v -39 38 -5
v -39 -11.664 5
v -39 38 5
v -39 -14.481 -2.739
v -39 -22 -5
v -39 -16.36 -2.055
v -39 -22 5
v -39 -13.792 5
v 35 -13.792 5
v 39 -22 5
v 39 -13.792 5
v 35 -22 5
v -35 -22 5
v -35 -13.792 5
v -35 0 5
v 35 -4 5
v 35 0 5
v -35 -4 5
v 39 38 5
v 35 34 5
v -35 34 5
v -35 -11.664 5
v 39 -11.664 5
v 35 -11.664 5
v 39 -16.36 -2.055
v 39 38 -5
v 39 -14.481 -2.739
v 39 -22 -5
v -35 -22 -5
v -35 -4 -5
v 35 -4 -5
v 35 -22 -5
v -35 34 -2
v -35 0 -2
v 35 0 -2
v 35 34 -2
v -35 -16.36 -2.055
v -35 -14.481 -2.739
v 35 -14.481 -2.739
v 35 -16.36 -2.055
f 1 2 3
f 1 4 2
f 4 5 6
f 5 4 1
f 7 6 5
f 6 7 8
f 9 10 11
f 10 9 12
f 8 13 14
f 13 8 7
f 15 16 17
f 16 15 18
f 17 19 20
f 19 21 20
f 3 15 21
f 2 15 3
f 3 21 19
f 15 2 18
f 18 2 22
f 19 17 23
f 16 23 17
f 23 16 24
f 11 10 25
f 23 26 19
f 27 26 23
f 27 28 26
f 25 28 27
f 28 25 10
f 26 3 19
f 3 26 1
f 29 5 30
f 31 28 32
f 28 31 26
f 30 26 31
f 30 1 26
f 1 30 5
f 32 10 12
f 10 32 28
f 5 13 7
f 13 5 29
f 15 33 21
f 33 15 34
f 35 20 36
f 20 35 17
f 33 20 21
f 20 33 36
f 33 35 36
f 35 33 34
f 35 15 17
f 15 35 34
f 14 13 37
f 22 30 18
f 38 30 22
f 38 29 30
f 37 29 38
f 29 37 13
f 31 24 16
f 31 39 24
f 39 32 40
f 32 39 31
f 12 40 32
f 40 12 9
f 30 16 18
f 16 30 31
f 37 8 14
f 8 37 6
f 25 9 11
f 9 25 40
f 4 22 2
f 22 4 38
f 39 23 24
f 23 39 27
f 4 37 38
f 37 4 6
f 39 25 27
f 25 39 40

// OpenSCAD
difference() {
    translate([0, 8, 0]) cube([78, 60, 10], center=true);
    translate([0,17,3]) cube([70, 34, 10], center=true);
    translate([0,-24,0]) cube([70, 40, 12], center=true);
    translate([0, -12, 7]) rotate([70, 0, 0]) cube([80, 20, 2], center=true);
}
